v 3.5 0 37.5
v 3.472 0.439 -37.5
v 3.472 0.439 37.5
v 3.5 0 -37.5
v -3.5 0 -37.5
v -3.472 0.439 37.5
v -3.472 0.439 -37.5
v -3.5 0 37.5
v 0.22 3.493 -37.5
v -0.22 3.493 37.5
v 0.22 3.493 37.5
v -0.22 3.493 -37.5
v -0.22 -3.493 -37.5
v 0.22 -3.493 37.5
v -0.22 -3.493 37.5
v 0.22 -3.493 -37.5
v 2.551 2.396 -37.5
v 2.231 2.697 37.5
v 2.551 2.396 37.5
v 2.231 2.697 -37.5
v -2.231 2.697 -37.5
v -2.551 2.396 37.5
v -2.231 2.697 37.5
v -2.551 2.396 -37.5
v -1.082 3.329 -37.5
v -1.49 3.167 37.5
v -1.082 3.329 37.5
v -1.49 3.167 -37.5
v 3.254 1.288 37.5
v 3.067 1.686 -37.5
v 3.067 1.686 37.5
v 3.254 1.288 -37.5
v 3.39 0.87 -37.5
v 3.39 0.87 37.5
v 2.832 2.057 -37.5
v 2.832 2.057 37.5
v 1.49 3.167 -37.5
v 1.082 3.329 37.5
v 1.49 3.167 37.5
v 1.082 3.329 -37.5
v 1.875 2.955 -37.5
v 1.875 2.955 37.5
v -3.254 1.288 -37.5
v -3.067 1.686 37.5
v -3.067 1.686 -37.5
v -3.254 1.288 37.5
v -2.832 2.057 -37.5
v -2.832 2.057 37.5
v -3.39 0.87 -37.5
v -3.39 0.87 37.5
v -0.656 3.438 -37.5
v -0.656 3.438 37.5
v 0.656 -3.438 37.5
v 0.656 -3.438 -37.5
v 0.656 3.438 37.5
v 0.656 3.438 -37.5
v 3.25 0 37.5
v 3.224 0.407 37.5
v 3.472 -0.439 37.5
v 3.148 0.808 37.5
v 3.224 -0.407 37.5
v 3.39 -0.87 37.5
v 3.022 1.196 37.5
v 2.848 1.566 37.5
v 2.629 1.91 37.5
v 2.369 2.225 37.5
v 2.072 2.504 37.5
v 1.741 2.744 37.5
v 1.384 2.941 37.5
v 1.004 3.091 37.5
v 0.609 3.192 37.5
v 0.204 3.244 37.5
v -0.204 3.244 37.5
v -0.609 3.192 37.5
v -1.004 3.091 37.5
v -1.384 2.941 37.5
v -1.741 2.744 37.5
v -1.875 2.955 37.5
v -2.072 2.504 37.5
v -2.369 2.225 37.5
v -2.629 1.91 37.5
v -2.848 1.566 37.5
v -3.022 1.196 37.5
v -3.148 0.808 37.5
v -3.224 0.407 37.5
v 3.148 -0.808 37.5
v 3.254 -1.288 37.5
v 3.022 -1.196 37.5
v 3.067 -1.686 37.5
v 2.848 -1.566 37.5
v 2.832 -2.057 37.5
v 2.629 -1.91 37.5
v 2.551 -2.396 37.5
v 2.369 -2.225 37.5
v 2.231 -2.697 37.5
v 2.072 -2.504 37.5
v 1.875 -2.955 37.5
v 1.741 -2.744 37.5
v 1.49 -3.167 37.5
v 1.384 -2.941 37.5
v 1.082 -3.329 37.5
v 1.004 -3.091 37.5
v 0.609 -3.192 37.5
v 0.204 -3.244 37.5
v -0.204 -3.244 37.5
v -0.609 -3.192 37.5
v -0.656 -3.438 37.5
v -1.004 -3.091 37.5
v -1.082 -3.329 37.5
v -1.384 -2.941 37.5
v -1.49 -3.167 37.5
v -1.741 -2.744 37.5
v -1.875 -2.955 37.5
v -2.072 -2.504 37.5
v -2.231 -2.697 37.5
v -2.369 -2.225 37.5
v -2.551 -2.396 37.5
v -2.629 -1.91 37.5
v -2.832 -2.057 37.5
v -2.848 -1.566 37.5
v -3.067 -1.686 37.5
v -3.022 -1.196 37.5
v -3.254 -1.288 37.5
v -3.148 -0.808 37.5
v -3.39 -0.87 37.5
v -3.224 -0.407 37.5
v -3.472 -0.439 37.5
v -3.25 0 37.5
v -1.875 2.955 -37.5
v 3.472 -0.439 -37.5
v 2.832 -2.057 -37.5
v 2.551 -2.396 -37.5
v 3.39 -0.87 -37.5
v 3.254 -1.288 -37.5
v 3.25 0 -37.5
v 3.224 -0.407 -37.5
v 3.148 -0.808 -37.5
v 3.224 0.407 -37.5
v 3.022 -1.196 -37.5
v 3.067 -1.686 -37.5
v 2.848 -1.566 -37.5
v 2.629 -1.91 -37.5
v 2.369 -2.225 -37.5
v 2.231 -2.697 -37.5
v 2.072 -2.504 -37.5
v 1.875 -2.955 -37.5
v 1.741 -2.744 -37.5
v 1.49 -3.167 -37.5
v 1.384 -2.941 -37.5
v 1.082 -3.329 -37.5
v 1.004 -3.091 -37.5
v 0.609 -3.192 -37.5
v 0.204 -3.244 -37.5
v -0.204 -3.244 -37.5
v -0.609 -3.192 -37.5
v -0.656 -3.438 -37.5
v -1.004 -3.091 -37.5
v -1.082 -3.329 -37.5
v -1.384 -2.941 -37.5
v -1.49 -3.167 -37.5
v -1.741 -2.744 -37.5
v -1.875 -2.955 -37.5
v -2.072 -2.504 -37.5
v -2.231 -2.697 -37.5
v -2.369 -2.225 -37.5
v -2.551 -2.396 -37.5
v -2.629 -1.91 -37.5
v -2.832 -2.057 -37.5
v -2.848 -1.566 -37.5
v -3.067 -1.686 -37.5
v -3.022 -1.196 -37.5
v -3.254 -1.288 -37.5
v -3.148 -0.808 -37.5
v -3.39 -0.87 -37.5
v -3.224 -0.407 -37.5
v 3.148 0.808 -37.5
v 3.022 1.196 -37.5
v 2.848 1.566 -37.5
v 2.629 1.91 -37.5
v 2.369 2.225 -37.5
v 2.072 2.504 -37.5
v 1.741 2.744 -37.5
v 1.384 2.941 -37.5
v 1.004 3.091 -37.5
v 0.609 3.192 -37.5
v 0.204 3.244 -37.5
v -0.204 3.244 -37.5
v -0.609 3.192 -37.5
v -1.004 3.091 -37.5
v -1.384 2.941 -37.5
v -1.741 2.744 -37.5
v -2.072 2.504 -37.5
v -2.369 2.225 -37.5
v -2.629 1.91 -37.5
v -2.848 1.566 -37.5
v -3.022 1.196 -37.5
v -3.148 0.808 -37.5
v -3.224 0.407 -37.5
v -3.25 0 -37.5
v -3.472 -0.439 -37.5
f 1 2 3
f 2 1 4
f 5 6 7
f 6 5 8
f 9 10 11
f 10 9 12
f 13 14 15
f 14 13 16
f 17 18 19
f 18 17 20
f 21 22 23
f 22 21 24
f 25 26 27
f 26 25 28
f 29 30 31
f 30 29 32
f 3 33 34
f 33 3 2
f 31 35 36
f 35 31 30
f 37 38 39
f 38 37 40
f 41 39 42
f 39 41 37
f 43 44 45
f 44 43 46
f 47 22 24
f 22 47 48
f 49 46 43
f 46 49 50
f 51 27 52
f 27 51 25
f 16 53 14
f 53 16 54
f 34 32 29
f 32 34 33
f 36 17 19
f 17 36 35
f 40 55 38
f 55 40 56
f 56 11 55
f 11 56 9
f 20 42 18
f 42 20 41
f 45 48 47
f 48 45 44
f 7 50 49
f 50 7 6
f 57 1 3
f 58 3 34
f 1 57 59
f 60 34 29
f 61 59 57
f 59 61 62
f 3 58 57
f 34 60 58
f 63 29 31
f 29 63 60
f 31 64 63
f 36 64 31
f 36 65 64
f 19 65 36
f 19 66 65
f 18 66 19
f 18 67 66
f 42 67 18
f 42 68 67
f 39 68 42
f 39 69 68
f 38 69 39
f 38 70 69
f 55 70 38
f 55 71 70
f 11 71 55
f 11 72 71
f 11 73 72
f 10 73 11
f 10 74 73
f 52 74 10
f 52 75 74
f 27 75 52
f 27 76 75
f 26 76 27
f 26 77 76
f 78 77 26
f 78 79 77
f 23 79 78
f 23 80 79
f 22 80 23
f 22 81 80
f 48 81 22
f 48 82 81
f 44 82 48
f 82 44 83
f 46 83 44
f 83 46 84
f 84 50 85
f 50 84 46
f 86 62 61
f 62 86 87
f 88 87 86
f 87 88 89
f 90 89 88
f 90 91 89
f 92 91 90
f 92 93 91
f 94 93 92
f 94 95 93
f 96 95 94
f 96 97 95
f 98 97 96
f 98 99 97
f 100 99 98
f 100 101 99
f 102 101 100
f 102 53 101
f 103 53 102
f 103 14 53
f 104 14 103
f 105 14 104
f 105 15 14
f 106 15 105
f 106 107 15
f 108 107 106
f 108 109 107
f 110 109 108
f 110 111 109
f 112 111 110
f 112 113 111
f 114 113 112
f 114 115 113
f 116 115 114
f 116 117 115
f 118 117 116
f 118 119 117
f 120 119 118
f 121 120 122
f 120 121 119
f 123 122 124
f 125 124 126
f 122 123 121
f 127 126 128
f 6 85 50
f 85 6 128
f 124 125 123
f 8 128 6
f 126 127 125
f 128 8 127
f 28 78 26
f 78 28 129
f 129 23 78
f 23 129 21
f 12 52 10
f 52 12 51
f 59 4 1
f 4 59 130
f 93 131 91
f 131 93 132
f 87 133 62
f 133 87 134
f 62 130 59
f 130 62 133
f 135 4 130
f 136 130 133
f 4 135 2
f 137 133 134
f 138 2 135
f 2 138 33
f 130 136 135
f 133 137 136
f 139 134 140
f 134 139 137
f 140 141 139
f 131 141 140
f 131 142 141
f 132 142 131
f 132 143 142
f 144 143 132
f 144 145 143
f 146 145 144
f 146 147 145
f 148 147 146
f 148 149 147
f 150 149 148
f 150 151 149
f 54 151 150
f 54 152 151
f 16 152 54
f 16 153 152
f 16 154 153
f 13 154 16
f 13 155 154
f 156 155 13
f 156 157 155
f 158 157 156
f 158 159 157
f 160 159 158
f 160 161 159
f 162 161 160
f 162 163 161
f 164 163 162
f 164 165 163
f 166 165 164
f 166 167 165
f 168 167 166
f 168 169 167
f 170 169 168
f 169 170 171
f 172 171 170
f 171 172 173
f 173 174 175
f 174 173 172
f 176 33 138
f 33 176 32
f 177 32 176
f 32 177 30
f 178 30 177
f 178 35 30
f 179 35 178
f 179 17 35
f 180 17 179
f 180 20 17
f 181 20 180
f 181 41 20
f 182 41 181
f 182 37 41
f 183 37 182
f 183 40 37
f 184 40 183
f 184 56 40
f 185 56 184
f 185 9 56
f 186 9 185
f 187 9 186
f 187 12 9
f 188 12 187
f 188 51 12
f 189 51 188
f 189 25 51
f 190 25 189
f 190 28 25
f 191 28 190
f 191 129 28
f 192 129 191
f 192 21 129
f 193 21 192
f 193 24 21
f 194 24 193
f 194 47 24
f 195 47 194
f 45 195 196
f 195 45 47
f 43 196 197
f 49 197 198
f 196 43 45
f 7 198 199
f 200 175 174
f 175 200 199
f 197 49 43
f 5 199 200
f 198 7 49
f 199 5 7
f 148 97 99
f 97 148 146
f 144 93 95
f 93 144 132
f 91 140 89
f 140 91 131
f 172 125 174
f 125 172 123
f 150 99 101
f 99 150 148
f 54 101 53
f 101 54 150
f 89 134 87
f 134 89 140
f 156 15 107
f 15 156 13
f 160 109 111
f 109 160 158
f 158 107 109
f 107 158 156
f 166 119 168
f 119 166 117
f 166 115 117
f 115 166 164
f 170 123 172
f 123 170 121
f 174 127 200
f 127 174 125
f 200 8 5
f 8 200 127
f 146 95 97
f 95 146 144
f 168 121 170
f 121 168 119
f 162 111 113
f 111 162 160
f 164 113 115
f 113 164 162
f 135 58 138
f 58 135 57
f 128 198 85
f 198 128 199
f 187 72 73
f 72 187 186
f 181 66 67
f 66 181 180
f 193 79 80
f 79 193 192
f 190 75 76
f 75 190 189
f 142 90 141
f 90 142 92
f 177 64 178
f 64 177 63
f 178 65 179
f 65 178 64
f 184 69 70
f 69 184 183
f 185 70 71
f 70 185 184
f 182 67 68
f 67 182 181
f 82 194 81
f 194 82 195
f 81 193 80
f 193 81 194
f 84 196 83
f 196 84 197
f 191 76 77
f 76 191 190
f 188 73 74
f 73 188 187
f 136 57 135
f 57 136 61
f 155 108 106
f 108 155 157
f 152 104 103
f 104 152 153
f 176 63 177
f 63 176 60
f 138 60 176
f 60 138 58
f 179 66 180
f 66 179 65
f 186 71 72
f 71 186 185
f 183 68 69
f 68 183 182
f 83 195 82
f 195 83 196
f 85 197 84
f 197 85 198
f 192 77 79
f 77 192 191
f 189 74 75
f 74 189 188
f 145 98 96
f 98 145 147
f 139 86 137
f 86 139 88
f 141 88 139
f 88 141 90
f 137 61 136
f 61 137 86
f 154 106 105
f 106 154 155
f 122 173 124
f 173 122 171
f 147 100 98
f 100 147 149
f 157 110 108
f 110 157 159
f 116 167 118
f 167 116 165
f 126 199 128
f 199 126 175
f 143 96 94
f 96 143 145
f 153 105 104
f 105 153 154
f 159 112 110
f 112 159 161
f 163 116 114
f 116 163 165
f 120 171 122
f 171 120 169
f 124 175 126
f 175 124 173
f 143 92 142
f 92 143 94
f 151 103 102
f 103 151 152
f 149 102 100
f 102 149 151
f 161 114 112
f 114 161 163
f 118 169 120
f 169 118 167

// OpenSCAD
$fn = 50;


difference() {
	union() {
		translate(v = [0, 0, -37.5000000000]) {
			cylinder(h = 75, r = 3.5000000000);
		}
	}
	union() {
		translate(v = [0, 0, -100.0000000000]) {
			cylinder(h = 200, r = 3.2500000000);
		}
	}
}
